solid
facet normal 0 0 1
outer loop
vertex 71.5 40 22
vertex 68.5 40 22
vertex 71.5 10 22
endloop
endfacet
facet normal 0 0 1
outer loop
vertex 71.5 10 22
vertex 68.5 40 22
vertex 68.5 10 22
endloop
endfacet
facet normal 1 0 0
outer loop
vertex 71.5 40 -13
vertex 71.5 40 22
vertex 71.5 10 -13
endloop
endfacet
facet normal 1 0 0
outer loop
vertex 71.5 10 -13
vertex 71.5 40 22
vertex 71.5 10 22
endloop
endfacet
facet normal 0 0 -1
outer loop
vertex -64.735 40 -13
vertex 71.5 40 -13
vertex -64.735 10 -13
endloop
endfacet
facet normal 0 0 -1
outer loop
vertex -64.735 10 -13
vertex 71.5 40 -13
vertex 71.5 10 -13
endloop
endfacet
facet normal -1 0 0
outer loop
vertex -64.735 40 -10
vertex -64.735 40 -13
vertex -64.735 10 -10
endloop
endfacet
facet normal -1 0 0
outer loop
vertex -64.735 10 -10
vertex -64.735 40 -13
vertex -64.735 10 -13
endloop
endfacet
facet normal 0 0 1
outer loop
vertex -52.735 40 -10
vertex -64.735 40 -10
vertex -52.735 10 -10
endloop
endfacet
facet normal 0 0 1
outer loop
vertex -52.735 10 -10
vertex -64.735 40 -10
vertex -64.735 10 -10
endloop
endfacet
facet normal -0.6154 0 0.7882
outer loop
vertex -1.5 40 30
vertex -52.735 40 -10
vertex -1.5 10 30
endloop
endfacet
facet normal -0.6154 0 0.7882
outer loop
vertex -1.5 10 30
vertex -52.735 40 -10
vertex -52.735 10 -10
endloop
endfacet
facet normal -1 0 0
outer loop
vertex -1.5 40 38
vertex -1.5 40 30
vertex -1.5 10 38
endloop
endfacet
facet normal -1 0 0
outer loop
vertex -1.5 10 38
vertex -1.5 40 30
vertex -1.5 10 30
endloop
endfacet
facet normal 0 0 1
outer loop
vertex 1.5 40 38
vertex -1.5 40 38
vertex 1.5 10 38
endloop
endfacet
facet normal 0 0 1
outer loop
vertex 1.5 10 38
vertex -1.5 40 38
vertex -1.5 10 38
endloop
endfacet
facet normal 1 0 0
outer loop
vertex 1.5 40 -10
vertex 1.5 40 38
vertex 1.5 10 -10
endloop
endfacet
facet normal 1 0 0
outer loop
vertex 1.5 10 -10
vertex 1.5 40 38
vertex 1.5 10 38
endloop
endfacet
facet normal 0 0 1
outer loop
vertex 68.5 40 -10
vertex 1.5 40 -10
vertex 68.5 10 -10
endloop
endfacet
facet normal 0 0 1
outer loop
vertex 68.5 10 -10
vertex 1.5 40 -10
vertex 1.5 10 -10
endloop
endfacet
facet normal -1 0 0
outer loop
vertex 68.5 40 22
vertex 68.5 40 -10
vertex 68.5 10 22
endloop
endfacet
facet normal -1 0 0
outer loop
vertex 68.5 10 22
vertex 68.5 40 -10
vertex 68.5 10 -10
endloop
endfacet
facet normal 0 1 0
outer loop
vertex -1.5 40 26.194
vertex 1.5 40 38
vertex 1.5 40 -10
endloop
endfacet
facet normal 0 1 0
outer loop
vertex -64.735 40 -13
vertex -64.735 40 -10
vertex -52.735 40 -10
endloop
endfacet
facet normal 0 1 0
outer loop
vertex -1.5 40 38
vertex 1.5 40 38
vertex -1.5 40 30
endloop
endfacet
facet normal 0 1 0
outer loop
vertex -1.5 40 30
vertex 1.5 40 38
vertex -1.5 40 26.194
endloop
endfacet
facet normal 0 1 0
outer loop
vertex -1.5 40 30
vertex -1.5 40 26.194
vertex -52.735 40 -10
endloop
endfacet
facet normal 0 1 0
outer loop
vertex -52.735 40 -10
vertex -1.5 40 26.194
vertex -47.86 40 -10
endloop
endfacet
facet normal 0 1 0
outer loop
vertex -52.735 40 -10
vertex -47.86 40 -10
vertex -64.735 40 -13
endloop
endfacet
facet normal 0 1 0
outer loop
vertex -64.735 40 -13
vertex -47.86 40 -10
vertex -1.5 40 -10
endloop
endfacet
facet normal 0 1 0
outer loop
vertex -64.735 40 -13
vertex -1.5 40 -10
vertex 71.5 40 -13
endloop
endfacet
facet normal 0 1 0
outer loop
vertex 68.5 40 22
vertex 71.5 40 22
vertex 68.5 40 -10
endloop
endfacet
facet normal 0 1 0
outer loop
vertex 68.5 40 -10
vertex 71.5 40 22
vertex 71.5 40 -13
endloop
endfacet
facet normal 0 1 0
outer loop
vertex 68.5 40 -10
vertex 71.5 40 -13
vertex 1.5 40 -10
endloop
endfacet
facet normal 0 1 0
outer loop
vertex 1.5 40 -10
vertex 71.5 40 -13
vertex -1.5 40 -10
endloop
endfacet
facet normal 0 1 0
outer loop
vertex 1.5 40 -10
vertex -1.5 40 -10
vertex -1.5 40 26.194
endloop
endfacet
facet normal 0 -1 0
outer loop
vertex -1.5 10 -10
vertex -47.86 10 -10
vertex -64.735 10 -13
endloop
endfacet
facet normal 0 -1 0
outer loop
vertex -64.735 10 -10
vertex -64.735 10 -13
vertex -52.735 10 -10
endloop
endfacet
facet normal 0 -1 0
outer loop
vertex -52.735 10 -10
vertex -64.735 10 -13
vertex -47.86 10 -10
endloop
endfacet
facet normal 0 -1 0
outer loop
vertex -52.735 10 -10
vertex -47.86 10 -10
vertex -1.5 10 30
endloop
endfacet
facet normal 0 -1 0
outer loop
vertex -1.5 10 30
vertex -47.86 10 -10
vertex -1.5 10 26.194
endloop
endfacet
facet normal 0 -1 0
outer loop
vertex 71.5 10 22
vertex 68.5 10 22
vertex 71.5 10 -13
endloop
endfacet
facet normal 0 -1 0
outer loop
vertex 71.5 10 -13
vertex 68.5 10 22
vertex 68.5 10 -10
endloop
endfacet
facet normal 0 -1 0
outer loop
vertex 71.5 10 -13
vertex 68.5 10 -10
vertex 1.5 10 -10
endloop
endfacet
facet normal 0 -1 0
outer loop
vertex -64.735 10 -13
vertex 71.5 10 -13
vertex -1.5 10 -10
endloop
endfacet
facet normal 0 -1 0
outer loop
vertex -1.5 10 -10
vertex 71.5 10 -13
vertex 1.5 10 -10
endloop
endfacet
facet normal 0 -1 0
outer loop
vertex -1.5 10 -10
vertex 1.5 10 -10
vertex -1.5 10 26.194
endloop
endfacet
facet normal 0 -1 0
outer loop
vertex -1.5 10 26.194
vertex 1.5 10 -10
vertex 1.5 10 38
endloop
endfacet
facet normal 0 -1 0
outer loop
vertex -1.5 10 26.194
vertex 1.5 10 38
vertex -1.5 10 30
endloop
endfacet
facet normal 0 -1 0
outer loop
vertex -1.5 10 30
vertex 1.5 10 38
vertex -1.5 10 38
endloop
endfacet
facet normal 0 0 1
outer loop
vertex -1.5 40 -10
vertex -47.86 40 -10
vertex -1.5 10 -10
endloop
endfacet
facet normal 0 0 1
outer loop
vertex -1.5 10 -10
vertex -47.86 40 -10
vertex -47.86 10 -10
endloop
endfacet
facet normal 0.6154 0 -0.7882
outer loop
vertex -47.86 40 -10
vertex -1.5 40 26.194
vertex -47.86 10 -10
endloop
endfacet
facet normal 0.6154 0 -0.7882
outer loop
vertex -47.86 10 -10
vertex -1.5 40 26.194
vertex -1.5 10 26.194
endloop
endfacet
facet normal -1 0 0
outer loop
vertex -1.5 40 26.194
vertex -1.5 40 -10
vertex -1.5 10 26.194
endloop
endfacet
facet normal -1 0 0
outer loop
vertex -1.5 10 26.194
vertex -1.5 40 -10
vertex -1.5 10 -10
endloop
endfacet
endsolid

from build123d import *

# Parameters (mm, degrees)
BOSS_EXTRUDE2_DEPTH = 30
CUT_EXTRUDE1_DEPTH  = 30


with BuildPart() as part:
    # Sketch1 → Boss-Extrude2 (new body)
    with BuildSketch(Plane(origin=(0, 10, 0), x_dir=(1, 0, 0), z_dir=(0, 1, 0))):
        Polygon((71.5, -22), (71.5, 13), (-64.73475383, 13), (-64.73475383, 10), (-52.73475383, 10), (-1.5, -30), (-1.5, -38), (1.5, -38), (1.5, 10), (68.5, 10), (68.5, -22), align=None)
    extrude(amount=BOSS_EXTRUDE2_DEPTH)

    # Sketch4 → Cut-Extrude1 (cut)
    with BuildSketch(Plane.XZ.offset(-10)):
        Polygon((-47.85975383, -10), (-1.5, 26.193989716), (-1.5, -10), align=None)
    extrude(amount=-CUT_EXTRUDE1_DEPTH, mode=Mode.SUBTRACT)


solid = part.part
